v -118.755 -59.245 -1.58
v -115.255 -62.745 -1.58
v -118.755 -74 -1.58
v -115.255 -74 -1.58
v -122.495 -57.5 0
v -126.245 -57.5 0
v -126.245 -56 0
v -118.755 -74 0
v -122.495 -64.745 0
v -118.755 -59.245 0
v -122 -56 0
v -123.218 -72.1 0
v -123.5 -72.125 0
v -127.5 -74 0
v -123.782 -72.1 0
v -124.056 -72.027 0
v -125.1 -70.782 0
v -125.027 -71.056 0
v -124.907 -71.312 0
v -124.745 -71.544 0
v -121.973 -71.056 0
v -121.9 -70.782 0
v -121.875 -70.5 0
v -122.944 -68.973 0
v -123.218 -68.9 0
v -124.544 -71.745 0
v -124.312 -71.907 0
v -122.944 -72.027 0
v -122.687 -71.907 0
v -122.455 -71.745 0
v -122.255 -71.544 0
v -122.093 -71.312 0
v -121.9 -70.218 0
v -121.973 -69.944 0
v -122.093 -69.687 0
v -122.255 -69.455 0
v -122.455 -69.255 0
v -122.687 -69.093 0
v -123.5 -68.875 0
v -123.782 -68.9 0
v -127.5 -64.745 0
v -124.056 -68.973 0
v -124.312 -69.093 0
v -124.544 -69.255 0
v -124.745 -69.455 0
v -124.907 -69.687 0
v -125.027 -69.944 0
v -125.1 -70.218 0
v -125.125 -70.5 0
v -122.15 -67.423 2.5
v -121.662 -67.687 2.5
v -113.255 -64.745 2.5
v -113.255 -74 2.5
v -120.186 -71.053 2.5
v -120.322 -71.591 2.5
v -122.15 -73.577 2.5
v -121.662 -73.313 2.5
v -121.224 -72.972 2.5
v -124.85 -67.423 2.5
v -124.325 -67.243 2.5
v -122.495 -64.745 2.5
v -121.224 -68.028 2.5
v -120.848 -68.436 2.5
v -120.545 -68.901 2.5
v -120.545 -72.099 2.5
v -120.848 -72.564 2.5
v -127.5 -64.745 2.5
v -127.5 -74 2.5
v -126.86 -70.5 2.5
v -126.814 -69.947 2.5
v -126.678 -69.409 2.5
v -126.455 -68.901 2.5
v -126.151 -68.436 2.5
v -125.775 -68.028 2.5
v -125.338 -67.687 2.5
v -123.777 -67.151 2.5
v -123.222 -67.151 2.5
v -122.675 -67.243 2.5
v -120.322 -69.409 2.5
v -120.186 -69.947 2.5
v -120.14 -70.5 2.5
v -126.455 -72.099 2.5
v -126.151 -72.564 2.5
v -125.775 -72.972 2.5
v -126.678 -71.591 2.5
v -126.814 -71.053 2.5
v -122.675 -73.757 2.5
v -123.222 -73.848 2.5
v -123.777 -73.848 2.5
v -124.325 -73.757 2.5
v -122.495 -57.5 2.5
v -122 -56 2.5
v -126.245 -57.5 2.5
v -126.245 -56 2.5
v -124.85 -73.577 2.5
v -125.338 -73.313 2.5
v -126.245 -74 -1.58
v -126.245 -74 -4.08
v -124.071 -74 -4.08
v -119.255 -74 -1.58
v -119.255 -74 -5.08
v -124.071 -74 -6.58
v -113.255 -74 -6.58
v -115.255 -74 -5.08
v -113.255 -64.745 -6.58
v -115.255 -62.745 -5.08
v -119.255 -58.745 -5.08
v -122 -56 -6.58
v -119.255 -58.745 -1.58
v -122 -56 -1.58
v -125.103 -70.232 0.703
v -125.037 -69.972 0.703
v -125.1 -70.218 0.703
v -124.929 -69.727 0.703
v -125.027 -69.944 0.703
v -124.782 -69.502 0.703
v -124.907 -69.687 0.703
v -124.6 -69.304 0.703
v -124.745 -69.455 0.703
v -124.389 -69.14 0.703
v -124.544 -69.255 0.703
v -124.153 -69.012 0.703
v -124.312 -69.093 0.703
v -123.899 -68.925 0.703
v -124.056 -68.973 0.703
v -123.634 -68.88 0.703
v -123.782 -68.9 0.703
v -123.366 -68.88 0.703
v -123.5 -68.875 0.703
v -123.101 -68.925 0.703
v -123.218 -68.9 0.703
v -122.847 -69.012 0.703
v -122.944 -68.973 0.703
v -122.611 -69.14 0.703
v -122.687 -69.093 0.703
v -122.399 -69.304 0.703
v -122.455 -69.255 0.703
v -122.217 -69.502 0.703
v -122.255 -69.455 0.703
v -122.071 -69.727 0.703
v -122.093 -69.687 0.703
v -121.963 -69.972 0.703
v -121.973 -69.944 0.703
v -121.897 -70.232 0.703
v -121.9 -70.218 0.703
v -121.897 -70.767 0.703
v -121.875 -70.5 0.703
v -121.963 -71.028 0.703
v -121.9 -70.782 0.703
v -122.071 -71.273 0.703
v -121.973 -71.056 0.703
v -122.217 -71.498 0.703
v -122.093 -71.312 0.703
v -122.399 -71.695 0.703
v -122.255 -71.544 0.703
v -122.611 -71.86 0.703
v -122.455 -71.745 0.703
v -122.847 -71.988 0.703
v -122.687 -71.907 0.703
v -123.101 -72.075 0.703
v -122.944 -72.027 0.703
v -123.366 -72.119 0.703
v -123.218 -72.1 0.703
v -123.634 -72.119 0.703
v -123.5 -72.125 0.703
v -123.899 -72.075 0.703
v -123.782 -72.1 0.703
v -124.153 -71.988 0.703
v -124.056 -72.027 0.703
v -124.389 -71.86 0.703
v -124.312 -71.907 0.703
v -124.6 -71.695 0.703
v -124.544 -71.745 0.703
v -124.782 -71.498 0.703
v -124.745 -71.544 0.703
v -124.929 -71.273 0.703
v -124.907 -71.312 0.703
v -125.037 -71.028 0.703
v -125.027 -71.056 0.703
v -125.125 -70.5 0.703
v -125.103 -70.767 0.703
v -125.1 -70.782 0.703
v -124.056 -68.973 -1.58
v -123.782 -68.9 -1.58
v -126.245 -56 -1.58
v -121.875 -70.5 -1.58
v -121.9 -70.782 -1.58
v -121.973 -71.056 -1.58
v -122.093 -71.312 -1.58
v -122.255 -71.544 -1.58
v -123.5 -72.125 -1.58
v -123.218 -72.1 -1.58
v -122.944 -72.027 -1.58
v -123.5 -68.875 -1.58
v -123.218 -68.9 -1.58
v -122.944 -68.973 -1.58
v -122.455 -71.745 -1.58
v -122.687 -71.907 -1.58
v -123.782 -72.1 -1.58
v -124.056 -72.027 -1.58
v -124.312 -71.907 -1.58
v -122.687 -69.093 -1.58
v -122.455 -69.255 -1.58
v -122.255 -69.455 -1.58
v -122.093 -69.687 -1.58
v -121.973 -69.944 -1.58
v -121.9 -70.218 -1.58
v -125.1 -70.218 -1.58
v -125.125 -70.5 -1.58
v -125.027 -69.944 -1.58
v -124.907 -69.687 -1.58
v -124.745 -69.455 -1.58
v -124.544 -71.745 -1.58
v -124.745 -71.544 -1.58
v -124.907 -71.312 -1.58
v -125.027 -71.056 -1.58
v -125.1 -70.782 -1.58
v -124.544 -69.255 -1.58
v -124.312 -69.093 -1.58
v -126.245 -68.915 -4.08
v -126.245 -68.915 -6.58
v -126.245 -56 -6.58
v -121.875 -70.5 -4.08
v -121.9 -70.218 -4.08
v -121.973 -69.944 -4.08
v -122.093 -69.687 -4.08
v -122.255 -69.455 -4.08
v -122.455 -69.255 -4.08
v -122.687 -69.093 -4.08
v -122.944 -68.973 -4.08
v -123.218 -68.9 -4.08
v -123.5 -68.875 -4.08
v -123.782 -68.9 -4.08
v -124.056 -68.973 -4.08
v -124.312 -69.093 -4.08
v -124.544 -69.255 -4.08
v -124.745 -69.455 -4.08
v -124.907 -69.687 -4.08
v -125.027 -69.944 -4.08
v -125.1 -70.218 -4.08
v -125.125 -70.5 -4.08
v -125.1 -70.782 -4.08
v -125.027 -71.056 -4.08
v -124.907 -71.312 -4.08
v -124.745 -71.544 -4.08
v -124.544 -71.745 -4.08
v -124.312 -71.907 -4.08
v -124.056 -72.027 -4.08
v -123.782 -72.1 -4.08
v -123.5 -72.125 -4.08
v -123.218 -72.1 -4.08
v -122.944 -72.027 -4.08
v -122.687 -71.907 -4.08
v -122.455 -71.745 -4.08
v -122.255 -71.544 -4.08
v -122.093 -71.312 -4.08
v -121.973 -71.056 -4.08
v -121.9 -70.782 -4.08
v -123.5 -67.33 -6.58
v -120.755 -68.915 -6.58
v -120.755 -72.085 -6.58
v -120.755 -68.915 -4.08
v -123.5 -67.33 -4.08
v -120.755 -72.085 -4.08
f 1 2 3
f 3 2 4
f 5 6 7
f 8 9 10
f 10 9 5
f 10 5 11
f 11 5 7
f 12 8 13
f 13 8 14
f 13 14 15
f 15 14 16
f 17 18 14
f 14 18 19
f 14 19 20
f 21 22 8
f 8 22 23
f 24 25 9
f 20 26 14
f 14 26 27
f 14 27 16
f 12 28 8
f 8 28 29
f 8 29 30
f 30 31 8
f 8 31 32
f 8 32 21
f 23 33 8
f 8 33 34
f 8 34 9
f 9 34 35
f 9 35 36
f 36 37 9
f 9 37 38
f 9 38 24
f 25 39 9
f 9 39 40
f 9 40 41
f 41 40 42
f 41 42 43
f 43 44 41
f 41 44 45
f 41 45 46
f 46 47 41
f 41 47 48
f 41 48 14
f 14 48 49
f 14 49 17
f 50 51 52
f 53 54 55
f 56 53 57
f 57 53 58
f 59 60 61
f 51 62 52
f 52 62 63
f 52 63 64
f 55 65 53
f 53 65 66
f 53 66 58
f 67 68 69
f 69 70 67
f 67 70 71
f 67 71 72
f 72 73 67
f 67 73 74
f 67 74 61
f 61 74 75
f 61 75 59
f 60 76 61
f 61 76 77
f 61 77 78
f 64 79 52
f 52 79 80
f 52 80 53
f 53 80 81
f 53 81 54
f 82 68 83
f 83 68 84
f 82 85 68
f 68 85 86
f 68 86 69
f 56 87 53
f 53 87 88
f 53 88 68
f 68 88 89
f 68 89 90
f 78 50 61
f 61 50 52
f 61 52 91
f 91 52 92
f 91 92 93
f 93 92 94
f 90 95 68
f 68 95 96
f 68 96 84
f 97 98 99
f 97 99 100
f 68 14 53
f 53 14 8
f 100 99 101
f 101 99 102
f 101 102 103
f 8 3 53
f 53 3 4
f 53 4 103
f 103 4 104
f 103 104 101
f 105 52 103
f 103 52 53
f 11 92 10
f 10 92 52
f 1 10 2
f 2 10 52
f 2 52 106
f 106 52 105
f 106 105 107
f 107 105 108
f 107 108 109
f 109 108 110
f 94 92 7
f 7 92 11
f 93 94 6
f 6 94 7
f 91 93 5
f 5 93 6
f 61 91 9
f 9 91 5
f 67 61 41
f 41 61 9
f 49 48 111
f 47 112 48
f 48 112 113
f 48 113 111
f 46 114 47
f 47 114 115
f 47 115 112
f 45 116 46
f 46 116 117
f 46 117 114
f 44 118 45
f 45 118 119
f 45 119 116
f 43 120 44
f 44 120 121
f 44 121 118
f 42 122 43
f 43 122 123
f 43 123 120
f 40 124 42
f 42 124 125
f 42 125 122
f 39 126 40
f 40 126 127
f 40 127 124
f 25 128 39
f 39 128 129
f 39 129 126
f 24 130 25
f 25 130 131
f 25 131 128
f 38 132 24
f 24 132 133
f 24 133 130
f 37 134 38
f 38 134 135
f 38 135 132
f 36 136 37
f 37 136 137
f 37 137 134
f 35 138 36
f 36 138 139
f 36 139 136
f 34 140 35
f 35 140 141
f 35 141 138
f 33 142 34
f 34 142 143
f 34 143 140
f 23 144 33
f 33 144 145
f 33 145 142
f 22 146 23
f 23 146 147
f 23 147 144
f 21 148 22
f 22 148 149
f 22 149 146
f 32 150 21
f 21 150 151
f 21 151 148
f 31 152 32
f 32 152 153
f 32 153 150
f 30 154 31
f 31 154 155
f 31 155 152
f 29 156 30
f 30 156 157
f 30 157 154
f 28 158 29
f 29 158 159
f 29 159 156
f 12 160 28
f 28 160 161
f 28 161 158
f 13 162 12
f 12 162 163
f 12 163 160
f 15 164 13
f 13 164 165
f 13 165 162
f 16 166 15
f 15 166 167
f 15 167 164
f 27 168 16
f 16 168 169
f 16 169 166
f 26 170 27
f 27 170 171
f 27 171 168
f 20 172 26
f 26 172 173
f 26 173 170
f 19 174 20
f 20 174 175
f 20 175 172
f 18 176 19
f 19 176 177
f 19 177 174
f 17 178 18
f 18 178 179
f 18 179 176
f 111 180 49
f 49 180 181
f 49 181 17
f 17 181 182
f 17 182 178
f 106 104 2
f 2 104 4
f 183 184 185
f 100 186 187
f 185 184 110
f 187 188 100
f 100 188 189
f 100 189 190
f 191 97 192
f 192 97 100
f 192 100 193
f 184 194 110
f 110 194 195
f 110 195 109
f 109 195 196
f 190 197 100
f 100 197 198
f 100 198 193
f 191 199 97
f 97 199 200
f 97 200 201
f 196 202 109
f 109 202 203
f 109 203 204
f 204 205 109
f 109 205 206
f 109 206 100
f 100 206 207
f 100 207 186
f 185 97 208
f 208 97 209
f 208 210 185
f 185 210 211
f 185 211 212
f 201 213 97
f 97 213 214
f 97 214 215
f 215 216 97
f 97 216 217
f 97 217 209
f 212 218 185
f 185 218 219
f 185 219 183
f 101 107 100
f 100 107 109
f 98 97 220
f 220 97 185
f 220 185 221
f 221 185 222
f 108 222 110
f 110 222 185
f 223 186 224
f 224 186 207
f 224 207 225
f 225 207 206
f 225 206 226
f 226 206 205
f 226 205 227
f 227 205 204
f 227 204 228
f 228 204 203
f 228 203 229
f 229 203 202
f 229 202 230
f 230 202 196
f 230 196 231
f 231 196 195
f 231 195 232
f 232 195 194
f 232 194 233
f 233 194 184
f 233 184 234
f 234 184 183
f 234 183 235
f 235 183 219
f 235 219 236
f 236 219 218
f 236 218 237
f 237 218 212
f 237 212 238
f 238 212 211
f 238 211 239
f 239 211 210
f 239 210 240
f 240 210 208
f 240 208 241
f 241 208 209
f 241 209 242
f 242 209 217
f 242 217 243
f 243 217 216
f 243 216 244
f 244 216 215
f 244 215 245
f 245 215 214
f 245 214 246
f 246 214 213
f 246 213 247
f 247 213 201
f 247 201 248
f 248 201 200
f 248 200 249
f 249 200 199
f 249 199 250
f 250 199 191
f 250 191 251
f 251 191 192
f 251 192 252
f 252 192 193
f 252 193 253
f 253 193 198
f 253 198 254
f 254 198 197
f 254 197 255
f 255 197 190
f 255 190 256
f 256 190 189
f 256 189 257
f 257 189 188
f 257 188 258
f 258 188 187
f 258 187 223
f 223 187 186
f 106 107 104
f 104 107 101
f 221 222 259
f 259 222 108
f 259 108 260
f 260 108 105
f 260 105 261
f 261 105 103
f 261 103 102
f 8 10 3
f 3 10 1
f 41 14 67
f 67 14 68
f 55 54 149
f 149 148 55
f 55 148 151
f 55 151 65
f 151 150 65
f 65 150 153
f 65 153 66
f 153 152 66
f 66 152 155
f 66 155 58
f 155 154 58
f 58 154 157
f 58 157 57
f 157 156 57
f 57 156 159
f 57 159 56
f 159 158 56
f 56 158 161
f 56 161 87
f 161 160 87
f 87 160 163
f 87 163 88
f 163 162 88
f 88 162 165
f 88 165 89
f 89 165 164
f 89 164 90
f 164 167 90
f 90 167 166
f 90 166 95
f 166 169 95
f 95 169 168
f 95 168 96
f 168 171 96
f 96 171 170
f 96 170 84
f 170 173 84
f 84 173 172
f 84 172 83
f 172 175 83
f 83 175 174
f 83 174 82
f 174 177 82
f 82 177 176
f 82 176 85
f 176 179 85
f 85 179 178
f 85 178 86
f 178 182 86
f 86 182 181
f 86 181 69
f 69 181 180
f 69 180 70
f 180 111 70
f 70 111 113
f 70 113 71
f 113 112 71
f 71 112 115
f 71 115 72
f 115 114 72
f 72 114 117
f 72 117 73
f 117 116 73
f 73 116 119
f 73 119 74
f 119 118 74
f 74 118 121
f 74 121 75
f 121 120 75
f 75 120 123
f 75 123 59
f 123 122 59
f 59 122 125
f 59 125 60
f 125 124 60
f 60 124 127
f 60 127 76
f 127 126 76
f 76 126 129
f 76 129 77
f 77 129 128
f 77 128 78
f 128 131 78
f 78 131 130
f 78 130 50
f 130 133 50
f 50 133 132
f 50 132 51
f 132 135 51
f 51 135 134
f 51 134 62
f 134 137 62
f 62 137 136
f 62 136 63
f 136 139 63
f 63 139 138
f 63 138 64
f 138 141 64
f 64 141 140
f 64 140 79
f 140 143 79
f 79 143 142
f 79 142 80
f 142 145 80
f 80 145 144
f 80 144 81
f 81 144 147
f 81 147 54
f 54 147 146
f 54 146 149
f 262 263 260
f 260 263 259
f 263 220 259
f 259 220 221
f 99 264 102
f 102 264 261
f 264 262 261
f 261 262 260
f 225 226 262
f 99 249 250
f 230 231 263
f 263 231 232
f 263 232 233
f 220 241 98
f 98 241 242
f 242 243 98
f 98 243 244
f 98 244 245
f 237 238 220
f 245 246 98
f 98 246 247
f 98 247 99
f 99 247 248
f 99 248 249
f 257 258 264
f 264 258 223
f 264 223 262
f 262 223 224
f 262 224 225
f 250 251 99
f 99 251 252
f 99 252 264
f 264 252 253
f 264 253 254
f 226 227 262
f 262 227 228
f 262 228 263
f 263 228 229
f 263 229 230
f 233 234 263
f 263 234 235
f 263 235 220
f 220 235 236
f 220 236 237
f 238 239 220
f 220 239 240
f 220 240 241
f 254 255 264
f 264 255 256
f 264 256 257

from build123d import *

# Parameters (mm, degrees)
CROQUIS1_R              = 1.625
SALIENTE_EXTRUIR1_DEPTH = 2.5
SALIENTE_EXTRUIR2_DEPTH = 1.58
SALIENTE_EXTRUIR3_START = 3.5
CROQUIS3_R              = 1.625
SALIENTE_EXTRUIR3_DEPTH = 3.5
SALIENTE_EXTRUIR4_START = 1.5
CROQUIS5_R              = 1.625
SALIENTE_EXTRUIR4_DEPTH = 1.5
CORTAR_EXTRUIR1_REACH   = 129.692
CROQUIS6_W              = 3.24530053
CROQUIS6_H              = 1.58
SALIENTE_EXTRUIR5_START = -2.5
CROQUIS7_W              = 1.25469947
CROQUIS7_H              = 9.25469947
SALIENTE_EXTRUIR5_DEPTH = 2.5
CROQUIS8_R              = 3.35997123
CORTAR_EXTRUIR2_DEPTH   = 1.8
CORTAR_EXTRUIR2_DRAFT   = -44
CORTAR_EXTRUIR3_DEPTH   = 2.5


with BuildPart() as part:
    # Croquis1 → Saliente-Extruir1 (new body)
    with BuildSketch(Plane.XY):
        Polygon((-126.24514053, -73.999935), (-113.25453947, -73.999935), (-113.25453947, -64.74523553), (-121.99984, -55.999935), (-126.24514053, -55.999935), (-126.24514053, -57.499935), (-122.49514053, -57.499935), (-122.49514053, -64.74523553), (-126.24514053, -64.74523553), align=None)
        with Locations((-123.49984, -70.499935)):
            Circle(CROQUIS1_R, mode=Mode.SUBTRACT)
    extrude(amount=SALIENTE_EXTRUIR1_DEPTH)

    # Croquis2 → Saliente-Extruir2 (add)
    with BuildSketch(Plane(origin=(0, 0, 0), x_dir=(-1, 0, 0), z_dir=(0, 0, -1))):
        Polygon((119.99984, -57.999935), (119.99984, -71.999935), (121.99984, -73.999935), (113.25453947, -73.999935), (113.25453947, -64.74523553), align=None)
    extrude(amount=SALIENTE_EXTRUIR2_DEPTH)

    # Croquis3 → Saliente-Extruir3 (add)
    # profile 1 of 2: a face of its own
    with BuildSketch(Plane(origin=(0, 0, -1.58), x_dir=(-1, 0, 0), z_dir=(0, 0, -1)).offset(SALIENTE_EXTRUIR3_START)):
        Polygon((113.25453947, -73.999935), (113.25453947, -64.74523553), (115.25453947, -62.74523553), (115.25453947, -73.999935), align=None)
    # profile 2 of 2: a face of its own
    with BuildSketch(Plane(origin=(0, 0, -1.58), x_dir=(-1, 0, 0), z_dir=(0, 0, -1)).offset(SALIENTE_EXTRUIR3_START)):
        Polygon((119.25453947, -73.999935), (121.99984, -73.999935), (126.24514053, -73.999935), (126.24514053, -64.74523553), (126.24514053, -55.999935), (121.99984, -55.999935), (119.99984, -57.999935), (119.25453947, -58.74523553), align=None)
        with Locations(Location((123.49984, -70.499935, 0), (0, 0, 180))):
            Circle(CROQUIS3_R, mode=Mode.SUBTRACT)
    extrude(amount=-SALIENTE_EXTRUIR3_DEPTH)

    # Croquis5 → Saliente-Extruir4 (add)
    with BuildSketch(Plane(origin=(0, 0, -5.08), x_dir=(-1, 0, 0), z_dir=(0, 0, -1)).offset(SALIENTE_EXTRUIR4_START)):
        Polygon((113.25453947, -73.999935), (126.24514053, -73.999935), (126.24514053, -55.999935), (121.99984, -55.999935), (113.25453947, -64.74523553), align=None)
        with Locations(Location((123.49984, -70.499935, 0), (0, 0, 180))):
            Circle(CROQUIS5_R, mode=Mode.SUBTRACT)
    extrude(amount=-SALIENTE_EXTRUIR4_DEPTH)

    # Cortar-Extruir1: up to this plane
    cortar_extruir1_end = Plane(origin=(-113.25453947, -64.74523553, 2.5), z_dir=(-0.7071067811865476, -0.7071067811865476, 0))
    # Croquis6 → Cortar-Extruir1 (cut, up to the surface)
    with BuildSketch(Plane.XZ.offset(73.999935), mode=Mode.PRIVATE) as cortar_extruir1_sk1:
        with Locations((-120.377189735, -0.79)):
            Rectangle(CROQUIS6_W, CROQUIS6_H)
    cortar_extruir1_tool1 = split(extrude(cortar_extruir1_sk1.sketch, amount=-CORTAR_EXTRUIR1_REACH, mode=Mode.PRIVATE), bisect_by=cortar_extruir1_end, keep=Keep.BOTH, mode=Mode.PRIVATE)
    add(cortar_extruir1_tool1.solids().sort_by_distance((-120.37719, -73.999935, -0.79))[0], mode=Mode.SUBTRACT)

    # Croquis7 → Saliente-Extruir5 (add)
    with BuildSketch(Plane.XY.offset(2.5).offset(SALIENTE_EXTRUIR5_START)):
        with Locations((-126.872490265, -69.372585265)):
            Rectangle(CROQUIS7_W, CROQUIS7_H)
    extrude(amount=SALIENTE_EXTRUIR5_DEPTH)


with BuildPart() as cortar_extruir2_tool:
    # Croquis8 → Cortar-Extruir2 (with draft: the straight prism first)
    with BuildSketch(Plane.XY.offset(2.5)):
        with Locations((-123.49984, -70.499935)):
            Circle(CROQUIS8_R)
    extrude(amount=-CORTAR_EXTRUIR2_DEPTH)
    # Cortar-Extruir2: the draft: its side faces are tilted about the plane it starts from
    cortar_extruir2_sides = [cortar_extruir2_tool.faces().sort_by_distance(p)[0] for p in [
        (-126.85981123, -70.499935, 1.6),
    ]]
    draft(cortar_extruir2_sides, Plane.XY.offset(2.5), CORTAR_EXTRUIR2_DRAFT)


with BuildPart() as part_1:
    add(part.part)

    # Cortar-Extruir2: cut by cortar_extruir2_tool
    add(cortar_extruir2_tool.part, mode=Mode.SUBTRACT)

    # Croquis9 → Cortar-Extruir3 (cut)
    with BuildSketch(Plane(origin=(0, 0, -6.58), x_dir=(-1, 0, 0), z_dir=(0, 0, -1))):
        Polygon((120.75453947, -72.084935), (123.49984, -73.669935), (124.071416766, -73.999935), (126.24514053, -73.999935), (126.24514053, -72.084935), (126.24514053, -68.914935), (123.49984, -67.329935), (120.75453947, -68.914935), align=None)
    extrude(amount=-CORTAR_EXTRUIR3_DEPTH, mode=Mode.SUBTRACT)


solid = part_1.part
